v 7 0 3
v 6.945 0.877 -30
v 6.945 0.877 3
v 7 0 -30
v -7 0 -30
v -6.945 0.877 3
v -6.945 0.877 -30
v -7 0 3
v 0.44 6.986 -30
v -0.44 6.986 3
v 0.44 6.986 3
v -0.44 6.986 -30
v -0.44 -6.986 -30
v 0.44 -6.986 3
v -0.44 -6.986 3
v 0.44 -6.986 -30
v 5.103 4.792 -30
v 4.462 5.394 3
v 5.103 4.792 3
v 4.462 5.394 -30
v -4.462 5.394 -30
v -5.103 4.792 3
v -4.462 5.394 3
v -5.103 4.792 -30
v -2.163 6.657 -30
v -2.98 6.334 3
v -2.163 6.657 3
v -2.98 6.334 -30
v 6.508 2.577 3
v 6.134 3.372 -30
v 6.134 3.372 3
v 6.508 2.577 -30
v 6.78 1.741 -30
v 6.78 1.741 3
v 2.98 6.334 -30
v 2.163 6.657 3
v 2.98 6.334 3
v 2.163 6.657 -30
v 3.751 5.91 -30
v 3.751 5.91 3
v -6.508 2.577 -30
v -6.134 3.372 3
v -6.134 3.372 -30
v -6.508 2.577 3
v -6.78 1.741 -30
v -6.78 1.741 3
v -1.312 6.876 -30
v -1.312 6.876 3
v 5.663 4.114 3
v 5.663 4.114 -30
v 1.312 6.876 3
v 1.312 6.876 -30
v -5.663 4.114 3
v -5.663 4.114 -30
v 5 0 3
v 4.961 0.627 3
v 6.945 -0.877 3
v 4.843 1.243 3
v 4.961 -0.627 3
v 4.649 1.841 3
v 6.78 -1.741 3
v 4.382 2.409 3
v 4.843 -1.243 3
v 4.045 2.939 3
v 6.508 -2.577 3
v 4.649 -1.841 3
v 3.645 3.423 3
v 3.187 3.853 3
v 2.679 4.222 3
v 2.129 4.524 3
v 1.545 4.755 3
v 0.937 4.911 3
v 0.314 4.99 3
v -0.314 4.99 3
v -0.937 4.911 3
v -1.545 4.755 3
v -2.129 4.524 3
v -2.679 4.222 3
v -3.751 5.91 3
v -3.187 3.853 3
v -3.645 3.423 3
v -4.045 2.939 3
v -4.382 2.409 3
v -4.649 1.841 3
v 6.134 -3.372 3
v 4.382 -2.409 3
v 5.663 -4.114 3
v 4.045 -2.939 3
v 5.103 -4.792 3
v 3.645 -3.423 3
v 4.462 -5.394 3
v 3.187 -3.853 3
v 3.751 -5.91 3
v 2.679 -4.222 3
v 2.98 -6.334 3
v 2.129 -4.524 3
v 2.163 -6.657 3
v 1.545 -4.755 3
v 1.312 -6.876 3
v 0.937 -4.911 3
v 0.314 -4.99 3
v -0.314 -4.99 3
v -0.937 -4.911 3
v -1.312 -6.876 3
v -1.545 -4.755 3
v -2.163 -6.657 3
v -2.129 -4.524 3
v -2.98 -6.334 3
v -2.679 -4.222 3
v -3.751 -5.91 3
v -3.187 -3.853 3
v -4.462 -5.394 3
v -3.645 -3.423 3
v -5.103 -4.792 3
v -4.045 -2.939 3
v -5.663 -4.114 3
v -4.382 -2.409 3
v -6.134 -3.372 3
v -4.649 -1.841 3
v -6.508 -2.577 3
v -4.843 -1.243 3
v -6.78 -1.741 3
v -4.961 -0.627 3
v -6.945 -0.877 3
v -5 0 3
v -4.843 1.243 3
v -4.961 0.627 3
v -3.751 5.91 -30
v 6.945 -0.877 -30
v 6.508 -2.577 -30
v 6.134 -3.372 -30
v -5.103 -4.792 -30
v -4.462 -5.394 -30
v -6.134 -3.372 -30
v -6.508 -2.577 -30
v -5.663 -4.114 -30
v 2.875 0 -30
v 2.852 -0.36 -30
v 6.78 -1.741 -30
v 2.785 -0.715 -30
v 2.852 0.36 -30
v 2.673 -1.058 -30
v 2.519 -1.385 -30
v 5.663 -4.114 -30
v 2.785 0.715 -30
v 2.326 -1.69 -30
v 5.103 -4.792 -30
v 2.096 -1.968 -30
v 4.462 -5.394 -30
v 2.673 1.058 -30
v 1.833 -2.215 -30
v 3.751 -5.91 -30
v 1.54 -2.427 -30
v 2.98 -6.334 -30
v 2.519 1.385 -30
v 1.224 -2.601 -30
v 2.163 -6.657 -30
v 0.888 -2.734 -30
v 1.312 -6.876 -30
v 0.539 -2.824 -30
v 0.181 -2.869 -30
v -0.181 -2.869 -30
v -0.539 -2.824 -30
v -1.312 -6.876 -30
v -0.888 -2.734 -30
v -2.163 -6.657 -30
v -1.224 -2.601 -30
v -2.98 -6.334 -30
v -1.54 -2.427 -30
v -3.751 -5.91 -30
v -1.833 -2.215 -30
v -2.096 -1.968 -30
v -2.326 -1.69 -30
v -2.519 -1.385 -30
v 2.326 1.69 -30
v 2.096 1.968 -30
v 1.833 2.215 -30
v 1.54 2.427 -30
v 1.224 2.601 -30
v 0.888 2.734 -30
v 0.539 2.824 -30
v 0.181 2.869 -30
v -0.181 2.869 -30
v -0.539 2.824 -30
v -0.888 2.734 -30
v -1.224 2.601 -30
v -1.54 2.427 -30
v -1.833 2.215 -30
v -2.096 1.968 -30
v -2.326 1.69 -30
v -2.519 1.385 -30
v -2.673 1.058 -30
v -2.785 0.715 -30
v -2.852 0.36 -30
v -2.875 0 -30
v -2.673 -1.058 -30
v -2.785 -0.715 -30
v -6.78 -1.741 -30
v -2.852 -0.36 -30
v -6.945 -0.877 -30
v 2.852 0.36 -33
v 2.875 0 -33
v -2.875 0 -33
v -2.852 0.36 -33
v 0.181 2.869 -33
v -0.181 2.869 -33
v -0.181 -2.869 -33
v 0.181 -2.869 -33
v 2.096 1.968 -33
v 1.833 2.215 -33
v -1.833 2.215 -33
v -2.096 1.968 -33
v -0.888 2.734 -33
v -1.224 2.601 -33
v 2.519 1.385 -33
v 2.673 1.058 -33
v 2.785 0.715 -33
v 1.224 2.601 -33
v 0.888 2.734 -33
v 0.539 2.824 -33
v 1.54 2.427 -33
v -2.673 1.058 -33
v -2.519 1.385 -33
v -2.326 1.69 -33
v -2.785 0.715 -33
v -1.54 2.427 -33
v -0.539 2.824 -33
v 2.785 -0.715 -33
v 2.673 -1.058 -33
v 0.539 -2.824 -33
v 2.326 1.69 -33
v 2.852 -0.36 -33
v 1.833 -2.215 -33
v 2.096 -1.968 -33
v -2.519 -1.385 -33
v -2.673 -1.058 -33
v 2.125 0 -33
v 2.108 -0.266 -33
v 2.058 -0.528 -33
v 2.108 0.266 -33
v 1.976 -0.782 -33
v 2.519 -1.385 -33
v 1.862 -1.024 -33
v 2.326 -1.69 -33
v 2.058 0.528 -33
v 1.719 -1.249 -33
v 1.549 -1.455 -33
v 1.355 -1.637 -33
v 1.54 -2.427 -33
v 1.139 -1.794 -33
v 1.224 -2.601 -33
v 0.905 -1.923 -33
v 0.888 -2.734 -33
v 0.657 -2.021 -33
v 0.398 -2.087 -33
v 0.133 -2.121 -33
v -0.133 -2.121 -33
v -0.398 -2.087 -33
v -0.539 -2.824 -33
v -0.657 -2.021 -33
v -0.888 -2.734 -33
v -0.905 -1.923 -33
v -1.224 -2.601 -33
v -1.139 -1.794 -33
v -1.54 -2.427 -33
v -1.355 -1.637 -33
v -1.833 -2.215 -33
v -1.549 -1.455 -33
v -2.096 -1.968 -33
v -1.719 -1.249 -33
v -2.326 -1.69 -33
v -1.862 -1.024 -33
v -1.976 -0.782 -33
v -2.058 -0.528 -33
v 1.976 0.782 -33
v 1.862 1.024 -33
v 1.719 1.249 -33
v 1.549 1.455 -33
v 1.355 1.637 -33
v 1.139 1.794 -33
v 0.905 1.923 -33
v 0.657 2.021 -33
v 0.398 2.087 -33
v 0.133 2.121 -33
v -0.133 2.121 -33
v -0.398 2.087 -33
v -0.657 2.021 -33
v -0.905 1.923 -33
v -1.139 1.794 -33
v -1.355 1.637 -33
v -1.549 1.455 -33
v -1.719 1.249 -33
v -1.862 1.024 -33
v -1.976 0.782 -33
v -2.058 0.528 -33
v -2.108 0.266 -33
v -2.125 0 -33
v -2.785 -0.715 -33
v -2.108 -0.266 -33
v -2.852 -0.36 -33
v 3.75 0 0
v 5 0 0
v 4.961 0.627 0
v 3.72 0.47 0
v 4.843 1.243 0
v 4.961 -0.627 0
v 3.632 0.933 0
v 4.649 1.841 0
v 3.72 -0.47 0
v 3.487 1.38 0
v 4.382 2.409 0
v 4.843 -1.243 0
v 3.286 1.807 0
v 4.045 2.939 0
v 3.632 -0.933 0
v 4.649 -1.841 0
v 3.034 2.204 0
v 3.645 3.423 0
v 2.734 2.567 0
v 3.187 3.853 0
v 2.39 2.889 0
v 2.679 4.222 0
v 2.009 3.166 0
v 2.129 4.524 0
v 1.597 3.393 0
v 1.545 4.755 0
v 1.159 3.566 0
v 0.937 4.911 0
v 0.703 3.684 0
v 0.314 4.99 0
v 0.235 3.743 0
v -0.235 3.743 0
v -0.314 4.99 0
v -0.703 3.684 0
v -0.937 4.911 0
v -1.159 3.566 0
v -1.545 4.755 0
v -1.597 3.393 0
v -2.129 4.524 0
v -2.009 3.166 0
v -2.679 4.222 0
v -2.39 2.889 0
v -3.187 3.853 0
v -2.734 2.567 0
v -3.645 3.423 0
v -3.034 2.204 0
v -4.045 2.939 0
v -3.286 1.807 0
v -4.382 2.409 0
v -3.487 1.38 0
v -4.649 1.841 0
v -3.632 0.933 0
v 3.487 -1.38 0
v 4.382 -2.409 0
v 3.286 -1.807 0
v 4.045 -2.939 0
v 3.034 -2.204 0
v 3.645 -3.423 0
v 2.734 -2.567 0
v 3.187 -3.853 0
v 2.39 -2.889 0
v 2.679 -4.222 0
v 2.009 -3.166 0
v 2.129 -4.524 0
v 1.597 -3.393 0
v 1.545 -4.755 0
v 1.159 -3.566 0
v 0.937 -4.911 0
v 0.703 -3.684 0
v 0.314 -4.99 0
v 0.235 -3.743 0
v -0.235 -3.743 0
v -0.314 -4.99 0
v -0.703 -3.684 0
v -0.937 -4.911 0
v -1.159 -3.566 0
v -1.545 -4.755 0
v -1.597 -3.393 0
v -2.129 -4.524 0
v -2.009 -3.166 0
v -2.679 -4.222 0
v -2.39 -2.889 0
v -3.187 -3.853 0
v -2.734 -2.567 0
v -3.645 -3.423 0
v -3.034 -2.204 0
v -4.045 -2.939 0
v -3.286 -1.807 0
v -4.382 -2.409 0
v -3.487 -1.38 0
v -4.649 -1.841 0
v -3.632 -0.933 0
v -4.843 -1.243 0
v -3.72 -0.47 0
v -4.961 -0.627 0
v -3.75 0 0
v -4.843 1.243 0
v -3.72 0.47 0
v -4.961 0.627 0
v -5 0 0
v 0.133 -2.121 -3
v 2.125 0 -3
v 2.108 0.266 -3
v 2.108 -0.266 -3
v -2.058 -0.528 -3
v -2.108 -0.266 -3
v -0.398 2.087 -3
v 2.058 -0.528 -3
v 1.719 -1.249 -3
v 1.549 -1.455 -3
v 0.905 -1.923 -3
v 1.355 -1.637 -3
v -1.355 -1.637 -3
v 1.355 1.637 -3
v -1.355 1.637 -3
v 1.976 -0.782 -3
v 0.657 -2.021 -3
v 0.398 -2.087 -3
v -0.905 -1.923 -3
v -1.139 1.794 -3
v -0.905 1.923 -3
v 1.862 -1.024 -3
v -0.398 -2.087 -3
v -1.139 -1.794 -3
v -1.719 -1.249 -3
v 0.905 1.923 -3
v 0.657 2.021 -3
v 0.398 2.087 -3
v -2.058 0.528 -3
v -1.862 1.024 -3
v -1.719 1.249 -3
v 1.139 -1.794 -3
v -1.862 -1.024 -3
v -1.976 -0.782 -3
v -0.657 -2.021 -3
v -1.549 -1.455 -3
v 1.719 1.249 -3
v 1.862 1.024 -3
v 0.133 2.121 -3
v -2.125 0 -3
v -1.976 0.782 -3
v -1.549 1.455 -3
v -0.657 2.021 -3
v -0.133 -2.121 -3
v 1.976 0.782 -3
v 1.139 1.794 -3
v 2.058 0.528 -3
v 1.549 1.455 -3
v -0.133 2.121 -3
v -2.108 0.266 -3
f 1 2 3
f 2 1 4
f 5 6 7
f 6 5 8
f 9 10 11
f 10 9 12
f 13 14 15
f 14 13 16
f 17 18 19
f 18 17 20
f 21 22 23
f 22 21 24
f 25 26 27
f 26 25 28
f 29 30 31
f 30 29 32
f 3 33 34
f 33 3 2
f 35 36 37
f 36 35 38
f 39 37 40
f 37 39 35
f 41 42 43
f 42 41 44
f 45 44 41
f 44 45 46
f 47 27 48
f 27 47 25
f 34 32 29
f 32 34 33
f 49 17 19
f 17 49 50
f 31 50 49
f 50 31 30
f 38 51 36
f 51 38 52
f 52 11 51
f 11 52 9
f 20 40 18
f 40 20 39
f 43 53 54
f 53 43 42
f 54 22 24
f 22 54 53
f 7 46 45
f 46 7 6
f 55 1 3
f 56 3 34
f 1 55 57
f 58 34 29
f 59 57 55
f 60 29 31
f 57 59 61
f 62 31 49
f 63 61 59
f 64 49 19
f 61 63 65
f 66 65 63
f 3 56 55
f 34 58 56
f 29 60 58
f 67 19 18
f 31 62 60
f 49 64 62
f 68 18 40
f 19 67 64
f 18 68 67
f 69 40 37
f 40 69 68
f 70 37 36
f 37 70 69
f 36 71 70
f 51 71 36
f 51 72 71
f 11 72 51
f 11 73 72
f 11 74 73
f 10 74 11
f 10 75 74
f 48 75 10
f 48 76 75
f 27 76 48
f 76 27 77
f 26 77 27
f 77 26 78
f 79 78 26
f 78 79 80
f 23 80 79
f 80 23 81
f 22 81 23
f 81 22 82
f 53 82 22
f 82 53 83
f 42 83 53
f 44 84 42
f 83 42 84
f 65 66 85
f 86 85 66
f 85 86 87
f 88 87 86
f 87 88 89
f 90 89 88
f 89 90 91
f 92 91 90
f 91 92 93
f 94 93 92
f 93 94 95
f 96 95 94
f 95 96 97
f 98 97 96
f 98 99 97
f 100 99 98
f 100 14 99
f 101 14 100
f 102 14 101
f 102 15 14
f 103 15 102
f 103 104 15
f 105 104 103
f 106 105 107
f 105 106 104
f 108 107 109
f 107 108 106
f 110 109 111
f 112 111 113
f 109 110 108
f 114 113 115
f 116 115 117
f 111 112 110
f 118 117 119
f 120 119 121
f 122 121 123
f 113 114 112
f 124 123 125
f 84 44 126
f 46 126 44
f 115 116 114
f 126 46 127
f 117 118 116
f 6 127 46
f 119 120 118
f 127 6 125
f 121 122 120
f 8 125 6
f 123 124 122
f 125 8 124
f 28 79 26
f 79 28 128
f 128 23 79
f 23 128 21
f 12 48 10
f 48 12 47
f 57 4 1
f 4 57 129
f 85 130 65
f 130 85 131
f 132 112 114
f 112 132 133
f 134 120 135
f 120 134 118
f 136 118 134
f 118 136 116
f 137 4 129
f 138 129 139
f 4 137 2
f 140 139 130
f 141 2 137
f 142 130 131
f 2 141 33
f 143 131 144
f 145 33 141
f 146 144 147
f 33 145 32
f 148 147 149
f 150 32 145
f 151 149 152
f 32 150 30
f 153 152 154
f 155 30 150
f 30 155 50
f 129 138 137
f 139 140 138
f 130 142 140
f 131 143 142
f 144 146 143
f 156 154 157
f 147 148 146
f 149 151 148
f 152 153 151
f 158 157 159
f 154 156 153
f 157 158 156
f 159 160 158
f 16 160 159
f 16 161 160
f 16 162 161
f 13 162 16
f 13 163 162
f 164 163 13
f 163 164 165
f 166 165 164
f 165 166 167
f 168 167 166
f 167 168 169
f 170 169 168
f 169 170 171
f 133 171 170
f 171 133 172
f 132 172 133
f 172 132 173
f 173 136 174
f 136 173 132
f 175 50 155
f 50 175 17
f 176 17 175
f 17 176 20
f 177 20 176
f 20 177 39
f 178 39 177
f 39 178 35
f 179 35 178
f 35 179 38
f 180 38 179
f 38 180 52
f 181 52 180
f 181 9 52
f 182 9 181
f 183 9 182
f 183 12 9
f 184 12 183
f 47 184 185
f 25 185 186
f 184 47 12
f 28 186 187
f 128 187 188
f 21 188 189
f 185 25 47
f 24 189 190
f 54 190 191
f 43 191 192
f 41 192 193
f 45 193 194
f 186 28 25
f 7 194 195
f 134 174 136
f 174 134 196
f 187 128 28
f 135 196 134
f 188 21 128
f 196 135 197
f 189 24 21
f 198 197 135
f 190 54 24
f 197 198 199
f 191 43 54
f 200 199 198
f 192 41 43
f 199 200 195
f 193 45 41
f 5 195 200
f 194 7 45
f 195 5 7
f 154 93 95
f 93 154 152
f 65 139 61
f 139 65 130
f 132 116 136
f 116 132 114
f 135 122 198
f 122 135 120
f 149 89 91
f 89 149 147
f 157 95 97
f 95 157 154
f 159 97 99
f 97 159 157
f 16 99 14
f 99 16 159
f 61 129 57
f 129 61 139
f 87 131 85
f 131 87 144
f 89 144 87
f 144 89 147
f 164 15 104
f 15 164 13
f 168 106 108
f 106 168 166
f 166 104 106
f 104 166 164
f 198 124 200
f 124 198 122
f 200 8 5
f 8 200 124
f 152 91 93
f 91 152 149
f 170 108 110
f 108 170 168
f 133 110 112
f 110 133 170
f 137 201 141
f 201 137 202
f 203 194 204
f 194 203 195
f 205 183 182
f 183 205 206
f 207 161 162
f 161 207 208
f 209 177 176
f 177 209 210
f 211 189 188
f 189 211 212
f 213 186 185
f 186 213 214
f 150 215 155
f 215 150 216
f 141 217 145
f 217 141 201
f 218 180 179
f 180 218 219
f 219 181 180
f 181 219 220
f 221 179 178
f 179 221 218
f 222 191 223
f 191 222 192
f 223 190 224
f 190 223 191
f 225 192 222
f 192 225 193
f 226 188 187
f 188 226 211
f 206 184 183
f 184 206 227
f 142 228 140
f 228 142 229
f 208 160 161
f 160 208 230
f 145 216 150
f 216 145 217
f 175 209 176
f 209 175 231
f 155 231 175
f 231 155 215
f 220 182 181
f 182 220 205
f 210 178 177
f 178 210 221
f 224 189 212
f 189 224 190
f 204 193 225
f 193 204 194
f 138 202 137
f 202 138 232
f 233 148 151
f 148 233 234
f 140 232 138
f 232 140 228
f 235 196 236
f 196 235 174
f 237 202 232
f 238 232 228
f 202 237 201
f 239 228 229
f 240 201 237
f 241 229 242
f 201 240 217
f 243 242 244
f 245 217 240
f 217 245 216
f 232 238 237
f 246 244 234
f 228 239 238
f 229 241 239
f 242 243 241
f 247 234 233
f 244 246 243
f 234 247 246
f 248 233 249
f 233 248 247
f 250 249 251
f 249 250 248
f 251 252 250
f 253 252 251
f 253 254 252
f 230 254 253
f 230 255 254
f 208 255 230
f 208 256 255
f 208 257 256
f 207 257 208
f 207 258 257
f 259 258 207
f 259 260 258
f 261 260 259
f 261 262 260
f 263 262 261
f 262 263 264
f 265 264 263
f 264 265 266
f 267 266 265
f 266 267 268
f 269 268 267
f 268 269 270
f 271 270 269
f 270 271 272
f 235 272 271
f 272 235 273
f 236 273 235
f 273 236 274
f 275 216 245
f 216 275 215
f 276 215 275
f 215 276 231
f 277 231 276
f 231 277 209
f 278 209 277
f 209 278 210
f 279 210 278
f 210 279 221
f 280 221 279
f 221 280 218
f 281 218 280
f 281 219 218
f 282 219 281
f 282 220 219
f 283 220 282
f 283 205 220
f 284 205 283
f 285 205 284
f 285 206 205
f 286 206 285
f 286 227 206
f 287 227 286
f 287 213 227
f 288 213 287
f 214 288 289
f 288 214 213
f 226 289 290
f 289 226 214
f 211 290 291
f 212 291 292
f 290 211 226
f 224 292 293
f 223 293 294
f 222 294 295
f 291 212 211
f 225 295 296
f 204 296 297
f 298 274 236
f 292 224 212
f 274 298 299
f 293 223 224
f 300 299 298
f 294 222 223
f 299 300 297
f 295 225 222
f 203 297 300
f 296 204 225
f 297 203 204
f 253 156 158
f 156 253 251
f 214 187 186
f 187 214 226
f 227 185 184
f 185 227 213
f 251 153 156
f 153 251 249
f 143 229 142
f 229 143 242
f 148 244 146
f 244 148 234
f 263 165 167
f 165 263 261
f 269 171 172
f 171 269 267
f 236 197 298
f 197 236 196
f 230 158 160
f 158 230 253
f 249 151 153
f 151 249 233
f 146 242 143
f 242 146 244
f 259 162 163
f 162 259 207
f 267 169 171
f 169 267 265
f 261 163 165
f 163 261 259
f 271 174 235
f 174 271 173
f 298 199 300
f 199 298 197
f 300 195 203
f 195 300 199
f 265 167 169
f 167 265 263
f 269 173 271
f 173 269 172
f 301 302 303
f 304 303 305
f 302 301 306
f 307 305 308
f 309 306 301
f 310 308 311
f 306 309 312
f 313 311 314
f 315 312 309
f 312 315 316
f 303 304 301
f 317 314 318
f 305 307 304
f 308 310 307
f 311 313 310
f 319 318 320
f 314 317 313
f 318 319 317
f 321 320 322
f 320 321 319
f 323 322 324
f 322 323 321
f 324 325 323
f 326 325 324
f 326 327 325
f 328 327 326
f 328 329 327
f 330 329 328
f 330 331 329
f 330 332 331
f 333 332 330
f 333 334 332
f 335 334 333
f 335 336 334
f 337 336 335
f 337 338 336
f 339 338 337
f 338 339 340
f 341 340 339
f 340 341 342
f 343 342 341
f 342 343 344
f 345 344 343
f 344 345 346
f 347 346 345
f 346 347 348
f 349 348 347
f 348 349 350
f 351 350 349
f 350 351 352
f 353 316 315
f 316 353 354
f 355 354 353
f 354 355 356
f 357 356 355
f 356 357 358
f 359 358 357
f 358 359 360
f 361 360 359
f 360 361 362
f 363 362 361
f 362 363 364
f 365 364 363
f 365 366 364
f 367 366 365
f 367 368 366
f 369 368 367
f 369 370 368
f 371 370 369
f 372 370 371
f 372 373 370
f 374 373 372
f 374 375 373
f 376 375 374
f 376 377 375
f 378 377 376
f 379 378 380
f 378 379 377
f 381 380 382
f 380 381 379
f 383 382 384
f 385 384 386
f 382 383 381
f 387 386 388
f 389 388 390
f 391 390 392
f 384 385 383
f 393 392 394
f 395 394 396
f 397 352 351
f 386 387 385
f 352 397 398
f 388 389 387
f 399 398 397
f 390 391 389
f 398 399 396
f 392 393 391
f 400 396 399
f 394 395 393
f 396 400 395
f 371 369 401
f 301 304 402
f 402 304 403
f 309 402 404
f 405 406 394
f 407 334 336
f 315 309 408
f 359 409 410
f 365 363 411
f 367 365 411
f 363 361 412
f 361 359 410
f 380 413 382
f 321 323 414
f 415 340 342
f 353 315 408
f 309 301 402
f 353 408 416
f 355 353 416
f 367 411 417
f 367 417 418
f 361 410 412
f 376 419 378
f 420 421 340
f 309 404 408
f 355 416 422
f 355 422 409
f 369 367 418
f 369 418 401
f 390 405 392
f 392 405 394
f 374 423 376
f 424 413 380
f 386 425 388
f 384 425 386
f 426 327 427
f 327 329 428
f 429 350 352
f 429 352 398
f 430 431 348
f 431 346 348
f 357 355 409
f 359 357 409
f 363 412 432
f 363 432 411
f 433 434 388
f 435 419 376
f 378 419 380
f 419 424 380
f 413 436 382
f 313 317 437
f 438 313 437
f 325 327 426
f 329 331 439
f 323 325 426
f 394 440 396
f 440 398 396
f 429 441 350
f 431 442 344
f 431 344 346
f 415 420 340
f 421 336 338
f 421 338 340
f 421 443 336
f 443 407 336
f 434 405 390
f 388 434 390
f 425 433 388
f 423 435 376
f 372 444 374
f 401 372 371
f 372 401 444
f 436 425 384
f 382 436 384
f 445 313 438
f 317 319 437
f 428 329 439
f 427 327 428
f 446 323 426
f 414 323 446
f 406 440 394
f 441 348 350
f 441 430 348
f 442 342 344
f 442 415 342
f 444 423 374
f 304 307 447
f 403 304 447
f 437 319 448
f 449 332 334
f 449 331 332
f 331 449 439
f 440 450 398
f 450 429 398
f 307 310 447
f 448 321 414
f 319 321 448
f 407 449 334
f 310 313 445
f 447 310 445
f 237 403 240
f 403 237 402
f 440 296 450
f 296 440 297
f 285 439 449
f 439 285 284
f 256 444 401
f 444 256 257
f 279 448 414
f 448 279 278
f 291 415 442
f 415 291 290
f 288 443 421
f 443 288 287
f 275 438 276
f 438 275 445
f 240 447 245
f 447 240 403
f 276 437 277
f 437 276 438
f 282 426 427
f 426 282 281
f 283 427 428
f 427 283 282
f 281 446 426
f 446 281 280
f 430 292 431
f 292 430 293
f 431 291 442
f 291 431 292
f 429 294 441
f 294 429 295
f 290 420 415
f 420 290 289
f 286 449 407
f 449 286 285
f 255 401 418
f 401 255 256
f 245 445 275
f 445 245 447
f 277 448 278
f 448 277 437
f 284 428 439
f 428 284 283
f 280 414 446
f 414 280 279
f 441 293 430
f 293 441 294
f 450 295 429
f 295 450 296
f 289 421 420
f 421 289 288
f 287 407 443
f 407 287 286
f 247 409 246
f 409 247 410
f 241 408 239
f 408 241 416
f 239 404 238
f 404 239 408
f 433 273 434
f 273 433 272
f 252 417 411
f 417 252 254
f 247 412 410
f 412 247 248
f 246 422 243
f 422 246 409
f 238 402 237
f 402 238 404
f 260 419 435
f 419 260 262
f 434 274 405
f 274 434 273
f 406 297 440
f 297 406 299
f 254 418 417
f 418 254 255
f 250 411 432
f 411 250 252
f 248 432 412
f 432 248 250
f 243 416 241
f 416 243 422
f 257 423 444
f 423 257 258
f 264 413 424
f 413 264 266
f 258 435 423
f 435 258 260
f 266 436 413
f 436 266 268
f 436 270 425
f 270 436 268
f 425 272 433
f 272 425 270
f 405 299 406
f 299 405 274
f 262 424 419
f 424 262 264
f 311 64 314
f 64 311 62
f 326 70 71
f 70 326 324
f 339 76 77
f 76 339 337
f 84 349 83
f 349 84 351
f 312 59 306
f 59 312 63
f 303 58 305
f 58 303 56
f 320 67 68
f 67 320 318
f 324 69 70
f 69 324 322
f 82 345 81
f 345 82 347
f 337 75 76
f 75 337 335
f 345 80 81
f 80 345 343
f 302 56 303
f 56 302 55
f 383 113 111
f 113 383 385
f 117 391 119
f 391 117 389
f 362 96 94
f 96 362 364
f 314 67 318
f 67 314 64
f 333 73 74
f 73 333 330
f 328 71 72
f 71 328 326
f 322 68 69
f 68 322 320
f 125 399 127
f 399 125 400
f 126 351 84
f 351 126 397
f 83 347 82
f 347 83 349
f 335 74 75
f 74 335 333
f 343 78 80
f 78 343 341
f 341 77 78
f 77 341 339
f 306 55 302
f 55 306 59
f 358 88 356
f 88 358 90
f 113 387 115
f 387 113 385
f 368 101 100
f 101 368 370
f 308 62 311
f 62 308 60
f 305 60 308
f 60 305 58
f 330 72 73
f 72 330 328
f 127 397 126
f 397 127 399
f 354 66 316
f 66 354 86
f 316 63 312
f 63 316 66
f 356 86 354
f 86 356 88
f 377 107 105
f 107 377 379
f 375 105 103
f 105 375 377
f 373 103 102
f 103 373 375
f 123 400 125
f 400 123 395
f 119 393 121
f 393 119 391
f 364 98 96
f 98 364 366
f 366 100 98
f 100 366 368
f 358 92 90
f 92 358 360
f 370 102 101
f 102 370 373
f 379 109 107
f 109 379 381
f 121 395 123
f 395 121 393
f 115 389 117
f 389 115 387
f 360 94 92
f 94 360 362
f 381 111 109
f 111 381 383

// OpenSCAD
$fn = 50;

difference() {
	union() {
		translate(v = [0, 0, -30.0]) {
			cylinder(h = 33, r = 7.0);
		}
		#translate(v = [0, 0, -33.0]) {
			cylinder(h = 33, r = 2.875);
		}
	}
	union() {
		translate(v = [0, 0, 0]) {
			rotate(a = [0, 0, 0]) {
				difference() {
					union() {
						translate(v = [0, 0, -33.0]) {
							cylinder(h = 33, r = 2.0);
						}
						translate(v = [0, 0, -3]) {
							cylinder(h = 3, r1 = 2.125, r2 = 3.75);
						}
						translate(v = [0, 0, -33.0]) {
							cylinder(h = 33, r = 2.125);
						}
						translate(v = [0, 0, -33.0]) {
							cylinder(h = 33, r = 2.0);
						}
					}
					union();
				}
			}
		}
		#cylinder(h = 3, r = 5.0);
	}
}
